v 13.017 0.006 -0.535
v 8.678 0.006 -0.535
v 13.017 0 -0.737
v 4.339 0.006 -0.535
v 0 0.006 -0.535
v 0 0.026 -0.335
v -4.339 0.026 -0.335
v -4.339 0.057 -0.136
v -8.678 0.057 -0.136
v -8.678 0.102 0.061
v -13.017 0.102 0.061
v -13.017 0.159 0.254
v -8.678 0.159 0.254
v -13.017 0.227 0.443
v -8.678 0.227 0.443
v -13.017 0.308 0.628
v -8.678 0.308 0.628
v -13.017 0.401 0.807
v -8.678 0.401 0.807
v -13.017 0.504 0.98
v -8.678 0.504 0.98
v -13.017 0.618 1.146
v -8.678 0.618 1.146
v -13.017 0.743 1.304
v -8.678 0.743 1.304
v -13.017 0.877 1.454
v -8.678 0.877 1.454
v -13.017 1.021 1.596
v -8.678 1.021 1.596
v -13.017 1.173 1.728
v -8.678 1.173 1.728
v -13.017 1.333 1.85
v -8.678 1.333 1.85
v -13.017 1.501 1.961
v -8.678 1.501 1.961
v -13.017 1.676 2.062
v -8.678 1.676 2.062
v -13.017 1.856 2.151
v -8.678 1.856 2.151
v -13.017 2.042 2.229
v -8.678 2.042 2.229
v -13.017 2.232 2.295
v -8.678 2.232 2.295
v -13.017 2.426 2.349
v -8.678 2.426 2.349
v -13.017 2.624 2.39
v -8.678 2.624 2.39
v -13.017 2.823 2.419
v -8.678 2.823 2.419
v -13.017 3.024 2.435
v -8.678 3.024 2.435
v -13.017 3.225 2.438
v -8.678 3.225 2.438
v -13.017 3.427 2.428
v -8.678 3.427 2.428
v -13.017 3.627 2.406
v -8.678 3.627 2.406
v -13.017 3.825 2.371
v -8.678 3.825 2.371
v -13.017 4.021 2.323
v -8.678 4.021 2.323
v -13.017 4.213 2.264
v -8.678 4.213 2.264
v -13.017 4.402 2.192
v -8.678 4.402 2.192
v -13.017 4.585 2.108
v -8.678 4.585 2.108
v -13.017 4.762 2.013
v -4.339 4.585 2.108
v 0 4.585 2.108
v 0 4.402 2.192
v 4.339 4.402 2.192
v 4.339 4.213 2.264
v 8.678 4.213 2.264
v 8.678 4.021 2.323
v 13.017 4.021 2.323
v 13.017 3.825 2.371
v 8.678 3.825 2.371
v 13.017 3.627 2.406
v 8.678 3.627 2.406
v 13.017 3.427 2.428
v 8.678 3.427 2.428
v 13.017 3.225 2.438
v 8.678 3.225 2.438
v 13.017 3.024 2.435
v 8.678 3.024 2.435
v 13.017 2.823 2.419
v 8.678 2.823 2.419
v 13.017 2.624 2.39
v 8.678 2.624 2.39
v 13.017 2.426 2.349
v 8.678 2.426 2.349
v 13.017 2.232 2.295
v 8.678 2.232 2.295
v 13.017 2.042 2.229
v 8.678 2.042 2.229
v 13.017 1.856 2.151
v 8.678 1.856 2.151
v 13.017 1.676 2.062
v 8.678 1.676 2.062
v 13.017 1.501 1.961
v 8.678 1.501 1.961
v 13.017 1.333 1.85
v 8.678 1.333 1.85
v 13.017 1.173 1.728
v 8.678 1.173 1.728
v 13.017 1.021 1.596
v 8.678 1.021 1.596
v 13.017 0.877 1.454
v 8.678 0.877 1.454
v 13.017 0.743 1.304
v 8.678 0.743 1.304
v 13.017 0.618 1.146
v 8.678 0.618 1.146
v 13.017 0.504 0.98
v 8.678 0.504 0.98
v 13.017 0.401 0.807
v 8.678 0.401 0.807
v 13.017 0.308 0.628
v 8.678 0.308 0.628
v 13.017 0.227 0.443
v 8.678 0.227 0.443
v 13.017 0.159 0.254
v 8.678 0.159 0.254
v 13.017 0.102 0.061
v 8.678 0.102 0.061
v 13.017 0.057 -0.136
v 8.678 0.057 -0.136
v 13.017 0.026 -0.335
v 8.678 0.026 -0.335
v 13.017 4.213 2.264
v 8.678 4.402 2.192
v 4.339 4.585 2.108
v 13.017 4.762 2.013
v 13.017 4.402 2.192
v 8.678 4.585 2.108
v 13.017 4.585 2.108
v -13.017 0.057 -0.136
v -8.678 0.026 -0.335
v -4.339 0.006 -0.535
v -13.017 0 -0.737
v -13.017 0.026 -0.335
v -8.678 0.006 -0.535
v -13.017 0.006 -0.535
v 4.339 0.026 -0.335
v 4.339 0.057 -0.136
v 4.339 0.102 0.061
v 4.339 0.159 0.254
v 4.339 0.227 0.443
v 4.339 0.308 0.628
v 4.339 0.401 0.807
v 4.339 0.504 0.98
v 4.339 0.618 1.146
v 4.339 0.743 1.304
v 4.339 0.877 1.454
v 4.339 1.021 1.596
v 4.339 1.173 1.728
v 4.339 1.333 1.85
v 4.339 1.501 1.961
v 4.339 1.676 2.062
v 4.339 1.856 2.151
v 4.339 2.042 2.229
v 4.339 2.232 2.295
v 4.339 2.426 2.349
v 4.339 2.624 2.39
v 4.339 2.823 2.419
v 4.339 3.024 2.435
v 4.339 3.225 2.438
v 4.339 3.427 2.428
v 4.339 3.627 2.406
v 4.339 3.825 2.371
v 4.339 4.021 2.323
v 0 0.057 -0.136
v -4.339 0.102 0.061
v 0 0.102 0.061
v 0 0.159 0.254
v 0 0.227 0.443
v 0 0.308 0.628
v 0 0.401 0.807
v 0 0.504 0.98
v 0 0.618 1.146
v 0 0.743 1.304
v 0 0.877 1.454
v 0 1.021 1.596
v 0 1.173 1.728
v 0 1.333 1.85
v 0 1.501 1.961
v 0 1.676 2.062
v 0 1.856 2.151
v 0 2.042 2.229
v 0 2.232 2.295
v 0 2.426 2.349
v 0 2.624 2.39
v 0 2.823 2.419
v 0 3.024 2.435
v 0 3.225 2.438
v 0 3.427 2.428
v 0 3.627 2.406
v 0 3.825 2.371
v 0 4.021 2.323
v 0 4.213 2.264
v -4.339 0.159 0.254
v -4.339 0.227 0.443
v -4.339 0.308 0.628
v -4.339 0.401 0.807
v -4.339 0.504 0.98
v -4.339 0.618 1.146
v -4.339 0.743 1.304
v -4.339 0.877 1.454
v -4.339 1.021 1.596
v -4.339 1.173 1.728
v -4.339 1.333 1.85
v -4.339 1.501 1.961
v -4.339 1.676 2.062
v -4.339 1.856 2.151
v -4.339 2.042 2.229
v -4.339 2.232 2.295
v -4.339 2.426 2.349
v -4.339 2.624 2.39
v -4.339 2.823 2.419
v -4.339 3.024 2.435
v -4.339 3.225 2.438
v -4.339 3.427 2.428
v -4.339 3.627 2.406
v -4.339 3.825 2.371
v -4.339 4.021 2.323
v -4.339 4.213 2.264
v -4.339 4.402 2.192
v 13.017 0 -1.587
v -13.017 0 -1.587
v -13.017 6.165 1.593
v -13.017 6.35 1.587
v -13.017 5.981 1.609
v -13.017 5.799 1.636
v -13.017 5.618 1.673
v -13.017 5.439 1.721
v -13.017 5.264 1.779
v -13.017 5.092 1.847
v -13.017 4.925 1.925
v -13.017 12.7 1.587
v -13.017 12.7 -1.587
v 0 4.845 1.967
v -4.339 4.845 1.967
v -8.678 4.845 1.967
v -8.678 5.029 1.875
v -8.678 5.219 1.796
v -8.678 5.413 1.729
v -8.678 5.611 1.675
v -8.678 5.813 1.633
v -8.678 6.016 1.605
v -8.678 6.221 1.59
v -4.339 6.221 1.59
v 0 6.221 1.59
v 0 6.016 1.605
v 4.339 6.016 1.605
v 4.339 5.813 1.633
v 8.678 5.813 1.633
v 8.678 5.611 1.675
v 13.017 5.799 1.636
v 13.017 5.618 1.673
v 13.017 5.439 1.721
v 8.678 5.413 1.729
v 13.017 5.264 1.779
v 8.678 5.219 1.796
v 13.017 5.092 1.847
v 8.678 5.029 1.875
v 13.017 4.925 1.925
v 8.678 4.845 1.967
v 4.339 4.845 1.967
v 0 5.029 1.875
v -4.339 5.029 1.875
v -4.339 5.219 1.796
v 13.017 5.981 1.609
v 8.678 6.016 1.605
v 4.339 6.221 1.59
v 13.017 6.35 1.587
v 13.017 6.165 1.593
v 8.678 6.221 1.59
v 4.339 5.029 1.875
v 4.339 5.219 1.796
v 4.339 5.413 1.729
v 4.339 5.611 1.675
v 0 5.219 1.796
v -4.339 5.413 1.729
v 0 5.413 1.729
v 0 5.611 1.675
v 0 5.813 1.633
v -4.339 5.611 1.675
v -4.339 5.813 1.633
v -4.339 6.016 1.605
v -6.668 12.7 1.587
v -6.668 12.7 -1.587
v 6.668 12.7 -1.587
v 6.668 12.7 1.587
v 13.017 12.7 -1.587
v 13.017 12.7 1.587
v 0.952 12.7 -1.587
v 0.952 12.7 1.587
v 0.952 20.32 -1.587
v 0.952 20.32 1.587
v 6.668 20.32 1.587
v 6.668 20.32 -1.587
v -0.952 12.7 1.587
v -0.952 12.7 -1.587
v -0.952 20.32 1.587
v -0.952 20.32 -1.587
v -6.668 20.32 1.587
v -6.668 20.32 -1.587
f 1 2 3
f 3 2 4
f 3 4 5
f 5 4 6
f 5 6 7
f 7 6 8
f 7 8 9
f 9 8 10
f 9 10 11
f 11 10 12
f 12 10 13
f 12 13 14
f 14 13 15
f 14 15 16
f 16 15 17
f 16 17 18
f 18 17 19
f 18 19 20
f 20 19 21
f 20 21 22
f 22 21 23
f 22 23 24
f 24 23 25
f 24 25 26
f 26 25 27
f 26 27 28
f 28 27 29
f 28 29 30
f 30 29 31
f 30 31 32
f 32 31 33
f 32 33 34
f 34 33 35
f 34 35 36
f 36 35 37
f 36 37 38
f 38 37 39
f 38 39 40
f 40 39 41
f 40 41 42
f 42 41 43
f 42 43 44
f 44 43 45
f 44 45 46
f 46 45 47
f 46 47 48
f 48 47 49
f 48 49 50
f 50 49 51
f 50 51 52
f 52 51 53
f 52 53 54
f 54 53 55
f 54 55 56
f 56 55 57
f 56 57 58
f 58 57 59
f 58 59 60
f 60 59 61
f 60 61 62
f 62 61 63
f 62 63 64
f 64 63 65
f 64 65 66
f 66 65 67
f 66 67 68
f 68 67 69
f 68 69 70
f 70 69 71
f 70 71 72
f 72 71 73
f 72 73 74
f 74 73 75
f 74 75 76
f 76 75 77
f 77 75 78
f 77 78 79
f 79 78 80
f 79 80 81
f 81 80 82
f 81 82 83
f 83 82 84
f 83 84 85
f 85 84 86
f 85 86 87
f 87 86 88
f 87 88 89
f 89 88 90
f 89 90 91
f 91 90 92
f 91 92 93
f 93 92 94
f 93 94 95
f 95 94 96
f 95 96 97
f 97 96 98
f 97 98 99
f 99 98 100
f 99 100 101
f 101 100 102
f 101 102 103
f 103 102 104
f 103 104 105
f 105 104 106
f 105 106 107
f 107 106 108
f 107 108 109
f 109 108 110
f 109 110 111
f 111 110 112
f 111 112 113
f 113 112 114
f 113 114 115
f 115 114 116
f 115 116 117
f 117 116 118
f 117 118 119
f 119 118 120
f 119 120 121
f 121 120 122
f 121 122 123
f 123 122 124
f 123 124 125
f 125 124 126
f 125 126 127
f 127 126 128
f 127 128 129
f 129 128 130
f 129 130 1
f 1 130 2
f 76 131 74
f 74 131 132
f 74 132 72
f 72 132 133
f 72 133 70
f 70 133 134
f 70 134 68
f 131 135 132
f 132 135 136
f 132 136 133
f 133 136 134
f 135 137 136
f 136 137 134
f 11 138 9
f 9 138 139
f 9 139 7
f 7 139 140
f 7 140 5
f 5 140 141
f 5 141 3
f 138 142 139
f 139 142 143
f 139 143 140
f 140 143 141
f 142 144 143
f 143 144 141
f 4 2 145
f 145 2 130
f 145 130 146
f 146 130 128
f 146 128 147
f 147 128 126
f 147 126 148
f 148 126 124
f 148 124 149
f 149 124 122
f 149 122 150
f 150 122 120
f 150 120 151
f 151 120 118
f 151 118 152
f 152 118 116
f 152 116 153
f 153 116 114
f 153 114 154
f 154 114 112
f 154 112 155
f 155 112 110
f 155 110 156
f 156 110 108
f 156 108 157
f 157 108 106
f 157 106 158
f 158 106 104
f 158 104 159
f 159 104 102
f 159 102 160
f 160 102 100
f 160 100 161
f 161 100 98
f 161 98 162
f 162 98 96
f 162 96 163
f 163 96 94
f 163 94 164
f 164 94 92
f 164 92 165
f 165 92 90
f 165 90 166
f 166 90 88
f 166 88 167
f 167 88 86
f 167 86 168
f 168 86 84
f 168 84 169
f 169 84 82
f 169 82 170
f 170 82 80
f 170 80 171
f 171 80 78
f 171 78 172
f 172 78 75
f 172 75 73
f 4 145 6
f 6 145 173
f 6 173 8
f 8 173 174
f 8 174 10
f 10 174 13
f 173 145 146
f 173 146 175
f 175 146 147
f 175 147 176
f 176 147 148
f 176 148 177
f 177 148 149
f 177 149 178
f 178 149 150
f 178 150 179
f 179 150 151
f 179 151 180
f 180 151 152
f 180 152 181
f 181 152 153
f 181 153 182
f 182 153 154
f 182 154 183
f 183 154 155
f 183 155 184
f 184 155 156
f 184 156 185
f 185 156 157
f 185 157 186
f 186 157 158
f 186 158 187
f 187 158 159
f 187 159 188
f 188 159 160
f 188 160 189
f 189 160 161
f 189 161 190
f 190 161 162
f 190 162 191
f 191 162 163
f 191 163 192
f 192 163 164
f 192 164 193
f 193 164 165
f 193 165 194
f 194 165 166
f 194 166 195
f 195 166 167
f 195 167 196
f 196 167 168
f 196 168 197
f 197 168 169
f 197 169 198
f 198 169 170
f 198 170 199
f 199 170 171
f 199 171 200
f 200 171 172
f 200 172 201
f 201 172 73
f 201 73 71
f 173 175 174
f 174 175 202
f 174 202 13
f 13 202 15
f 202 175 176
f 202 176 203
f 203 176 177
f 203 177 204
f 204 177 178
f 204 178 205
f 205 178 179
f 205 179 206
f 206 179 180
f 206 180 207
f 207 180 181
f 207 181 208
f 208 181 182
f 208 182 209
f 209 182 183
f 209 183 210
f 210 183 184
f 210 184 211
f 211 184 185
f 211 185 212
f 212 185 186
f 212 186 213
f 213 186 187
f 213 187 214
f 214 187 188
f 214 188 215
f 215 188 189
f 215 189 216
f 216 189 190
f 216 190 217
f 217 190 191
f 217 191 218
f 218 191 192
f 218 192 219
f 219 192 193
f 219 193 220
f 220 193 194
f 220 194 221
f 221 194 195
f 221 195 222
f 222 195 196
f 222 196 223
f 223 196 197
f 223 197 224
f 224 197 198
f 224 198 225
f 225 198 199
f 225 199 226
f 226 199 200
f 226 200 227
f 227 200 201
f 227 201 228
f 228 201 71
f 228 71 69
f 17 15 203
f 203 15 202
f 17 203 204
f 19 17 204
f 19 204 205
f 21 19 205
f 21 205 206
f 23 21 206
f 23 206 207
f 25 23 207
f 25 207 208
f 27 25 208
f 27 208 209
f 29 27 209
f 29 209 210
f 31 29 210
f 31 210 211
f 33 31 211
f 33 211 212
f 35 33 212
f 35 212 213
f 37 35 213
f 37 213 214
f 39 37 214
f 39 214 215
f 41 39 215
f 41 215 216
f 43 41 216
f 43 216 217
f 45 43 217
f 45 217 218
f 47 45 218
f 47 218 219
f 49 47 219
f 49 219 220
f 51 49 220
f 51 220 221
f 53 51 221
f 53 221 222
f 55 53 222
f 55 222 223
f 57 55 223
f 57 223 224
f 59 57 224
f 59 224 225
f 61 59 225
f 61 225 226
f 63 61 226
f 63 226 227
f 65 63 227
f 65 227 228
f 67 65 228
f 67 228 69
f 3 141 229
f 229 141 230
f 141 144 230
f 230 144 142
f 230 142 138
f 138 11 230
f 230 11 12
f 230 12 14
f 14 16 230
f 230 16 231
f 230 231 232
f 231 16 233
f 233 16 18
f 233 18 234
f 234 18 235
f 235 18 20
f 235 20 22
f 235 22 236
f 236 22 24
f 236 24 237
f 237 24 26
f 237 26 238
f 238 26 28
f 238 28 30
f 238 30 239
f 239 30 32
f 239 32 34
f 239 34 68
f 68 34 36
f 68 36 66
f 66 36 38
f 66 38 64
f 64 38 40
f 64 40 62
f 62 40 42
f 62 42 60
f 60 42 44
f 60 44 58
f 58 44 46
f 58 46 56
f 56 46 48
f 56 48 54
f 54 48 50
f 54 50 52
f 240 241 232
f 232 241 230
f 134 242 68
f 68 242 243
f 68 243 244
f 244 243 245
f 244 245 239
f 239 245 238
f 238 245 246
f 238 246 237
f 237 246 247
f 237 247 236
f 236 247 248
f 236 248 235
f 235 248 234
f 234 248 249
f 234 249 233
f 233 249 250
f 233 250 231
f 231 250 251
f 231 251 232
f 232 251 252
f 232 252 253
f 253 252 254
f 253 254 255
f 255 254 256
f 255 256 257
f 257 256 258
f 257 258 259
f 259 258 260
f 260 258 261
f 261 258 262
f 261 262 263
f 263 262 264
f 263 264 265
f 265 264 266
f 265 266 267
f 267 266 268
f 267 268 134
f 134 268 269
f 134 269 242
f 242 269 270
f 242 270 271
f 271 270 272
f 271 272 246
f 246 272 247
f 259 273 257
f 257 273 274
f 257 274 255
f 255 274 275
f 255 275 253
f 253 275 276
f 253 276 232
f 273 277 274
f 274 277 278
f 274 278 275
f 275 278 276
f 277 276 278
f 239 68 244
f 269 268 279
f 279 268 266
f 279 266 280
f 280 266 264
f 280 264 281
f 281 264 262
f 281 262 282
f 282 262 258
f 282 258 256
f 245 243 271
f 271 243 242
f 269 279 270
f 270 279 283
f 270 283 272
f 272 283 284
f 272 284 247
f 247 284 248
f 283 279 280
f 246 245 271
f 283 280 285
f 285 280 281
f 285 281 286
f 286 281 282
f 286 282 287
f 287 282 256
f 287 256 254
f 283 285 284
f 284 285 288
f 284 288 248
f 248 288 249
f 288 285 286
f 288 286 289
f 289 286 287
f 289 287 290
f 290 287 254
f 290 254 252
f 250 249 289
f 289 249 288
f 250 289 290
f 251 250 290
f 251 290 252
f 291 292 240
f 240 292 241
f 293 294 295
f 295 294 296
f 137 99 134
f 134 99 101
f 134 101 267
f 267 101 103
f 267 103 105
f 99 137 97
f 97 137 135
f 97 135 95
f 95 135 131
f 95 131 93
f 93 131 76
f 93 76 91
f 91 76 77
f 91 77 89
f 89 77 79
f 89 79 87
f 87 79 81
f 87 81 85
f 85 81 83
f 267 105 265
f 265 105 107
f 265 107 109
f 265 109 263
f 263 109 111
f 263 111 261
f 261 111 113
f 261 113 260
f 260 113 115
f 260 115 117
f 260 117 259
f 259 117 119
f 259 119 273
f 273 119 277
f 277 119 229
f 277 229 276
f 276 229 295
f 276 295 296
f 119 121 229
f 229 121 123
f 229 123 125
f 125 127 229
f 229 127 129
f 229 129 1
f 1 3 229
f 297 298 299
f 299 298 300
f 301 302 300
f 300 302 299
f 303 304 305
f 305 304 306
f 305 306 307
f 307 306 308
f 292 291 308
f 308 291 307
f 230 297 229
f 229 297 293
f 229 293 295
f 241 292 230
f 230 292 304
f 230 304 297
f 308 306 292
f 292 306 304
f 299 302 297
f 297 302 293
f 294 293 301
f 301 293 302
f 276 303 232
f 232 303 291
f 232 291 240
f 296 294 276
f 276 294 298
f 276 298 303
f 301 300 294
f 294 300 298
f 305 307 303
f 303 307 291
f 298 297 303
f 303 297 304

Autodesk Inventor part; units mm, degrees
ref_plane "YZ Plane" through (0, 0, 0) normal (1, 0, 0) x (0, 1, 0)
ref_plane "XZ Plane" through (0, 0, 0) normal (0, 1, 0) x (-1, 0, 0)
ref_plane "XY Plane" through (0, 0, 0) normal (0, 0, 1) x (1, 0, 0)
sketch "Sketch1" plane through (0, 0, 0) normal (0, 1, 0) x (-1, 0, 0)
  line L0 (-6.6675, 1.5875) -> (6.6675, 1.5875)
  line L1 (6.6675, 1.5875) -> (6.6675, -1.5875)
  line L2 (6.6675, -1.5875) -> (-6.6675, -1.5875)
  line L3 (-6.6675, -1.5875) -> (-6.6675, 1.5875)
  point P0 (0, 0)
  dimension "d0" = 13.335
  dimension "d1" = 3.175
  dimension "d2" = 1.5875
  dimension "d3" = 6.6675
extrude "Extrusion1" add sketch "Sketch1" along normal blind 12.7
sketch "Sketch2" plane through (0, 12.7, 0) normal (0, 1, 0) x (1, 0, 0)
  line L0 (6.6675, -1.5875) -> (6.6675, 1.5875) projected
  line L1 (6.6675, 1.5875) -> (-6.6675, 1.5875) projected
  line L2 (-6.6675, 1.5875) -> (-6.6675, -1.5875) projected
  line L3 (-6.6675, -1.5875) -> (-0.9525, -1.5875)
  line L4 (-0.9525, -1.5875) -> (-0.9525, 1.5875)
  line L5 (-0.9525, 1.5875) -> (-6.6675, 1.5875)
  line L6 (-6.6675, 1.5875) -> (-6.6675, -1.5875)
  line L7 (6.6675, -1.5875) -> (0.9525, -1.5875)
  line L8 (0.9525, -1.5875) -> (0.9525, 1.5875)
  line L9 (0.9525, 1.5875) -> (6.6675, 1.5875)
  line L10 (6.6675, 1.5875) -> (6.6675, -1.5875)
  point P0 (0, 0)
  dimension "d6" = 5.715
  dimension "d7" = 5.715
extrude "Extrusion2" add sketch "Sketch2" along normal blind 7.62
sketch "Sketch3" plane through (6.6675, 0, 1.5875) normal (1, 0, 0) x (0, 0, -1)
  line L0 (3.175, 0) -> (0, 0) projected
  line L1 (3.175, 0) -> (3.175, 20.32) projected
  line L2 (0, 0) -> (3.175, 0)
  line L3 (3.175, 0) -> (3.175, 12.7)
  line L4 (3.175, 12.7) -> (0, 12.7)
  line L5 (0, 12.7) -> (0, 0)
  point P0 (1.5875, 0)
  dimension "d10" = 0
  dimension "d11" = 12.7
extrude "Extrusion3" add sketch "Sketch3" along normal blind 6.35
sketch "Sketch4" plane through (-6.6675, 0, -1.5875) normal (-1, 0, 0) x (0, 0, 1)
  line L0 (0, 0) -> (3.175, 0)
  line L1 (3.175, 0) -> (3.175, 12.7)
  line L2 (3.175, 12.7) -> (0, 12.7)
  line L3 (0, 12.7) -> (0, 0)
  point P0 (1.5875, 0)
  dimension "d14" = 3.175
  dimension "d15" = 12.7
extrude "Extrusion4" add sketch "Sketch4" along normal blind 6.35
sketch "Sketch5" plane through (0.9525, 20.32, 1.5875) normal (0, 0, 1) x (1, 0, 0)
  line L0 (-13.97, -20.32) -> (12.065, -20.32)
  line L1 (12.065, -20.32) -> (12.065, -17.145)
  line L2 (12.065, -17.145) -> (-13.97, -17.145)
  line L3 (-13.97, -17.145) -> (-13.97, -20.32)
  point P0 (-0.9525, -20.32)
  dimension "d18" = 26.035
  dimension "d19" = 3.175
extrude "Extrusion5" add sketch "Sketch5" along normal blind 3.175
fillet "Fillet1" radius 3.175 3 edges at (0, 3.175, 4.7625) (0, 3.175, 1.5875) (0, 0, 4.7625)
equation "\"d2\" = 0.5 * d1"
equation "\"d3\" = 0.5 * d0"
equation "\"d7\" = d6"
properties part number "batteryFalg"
